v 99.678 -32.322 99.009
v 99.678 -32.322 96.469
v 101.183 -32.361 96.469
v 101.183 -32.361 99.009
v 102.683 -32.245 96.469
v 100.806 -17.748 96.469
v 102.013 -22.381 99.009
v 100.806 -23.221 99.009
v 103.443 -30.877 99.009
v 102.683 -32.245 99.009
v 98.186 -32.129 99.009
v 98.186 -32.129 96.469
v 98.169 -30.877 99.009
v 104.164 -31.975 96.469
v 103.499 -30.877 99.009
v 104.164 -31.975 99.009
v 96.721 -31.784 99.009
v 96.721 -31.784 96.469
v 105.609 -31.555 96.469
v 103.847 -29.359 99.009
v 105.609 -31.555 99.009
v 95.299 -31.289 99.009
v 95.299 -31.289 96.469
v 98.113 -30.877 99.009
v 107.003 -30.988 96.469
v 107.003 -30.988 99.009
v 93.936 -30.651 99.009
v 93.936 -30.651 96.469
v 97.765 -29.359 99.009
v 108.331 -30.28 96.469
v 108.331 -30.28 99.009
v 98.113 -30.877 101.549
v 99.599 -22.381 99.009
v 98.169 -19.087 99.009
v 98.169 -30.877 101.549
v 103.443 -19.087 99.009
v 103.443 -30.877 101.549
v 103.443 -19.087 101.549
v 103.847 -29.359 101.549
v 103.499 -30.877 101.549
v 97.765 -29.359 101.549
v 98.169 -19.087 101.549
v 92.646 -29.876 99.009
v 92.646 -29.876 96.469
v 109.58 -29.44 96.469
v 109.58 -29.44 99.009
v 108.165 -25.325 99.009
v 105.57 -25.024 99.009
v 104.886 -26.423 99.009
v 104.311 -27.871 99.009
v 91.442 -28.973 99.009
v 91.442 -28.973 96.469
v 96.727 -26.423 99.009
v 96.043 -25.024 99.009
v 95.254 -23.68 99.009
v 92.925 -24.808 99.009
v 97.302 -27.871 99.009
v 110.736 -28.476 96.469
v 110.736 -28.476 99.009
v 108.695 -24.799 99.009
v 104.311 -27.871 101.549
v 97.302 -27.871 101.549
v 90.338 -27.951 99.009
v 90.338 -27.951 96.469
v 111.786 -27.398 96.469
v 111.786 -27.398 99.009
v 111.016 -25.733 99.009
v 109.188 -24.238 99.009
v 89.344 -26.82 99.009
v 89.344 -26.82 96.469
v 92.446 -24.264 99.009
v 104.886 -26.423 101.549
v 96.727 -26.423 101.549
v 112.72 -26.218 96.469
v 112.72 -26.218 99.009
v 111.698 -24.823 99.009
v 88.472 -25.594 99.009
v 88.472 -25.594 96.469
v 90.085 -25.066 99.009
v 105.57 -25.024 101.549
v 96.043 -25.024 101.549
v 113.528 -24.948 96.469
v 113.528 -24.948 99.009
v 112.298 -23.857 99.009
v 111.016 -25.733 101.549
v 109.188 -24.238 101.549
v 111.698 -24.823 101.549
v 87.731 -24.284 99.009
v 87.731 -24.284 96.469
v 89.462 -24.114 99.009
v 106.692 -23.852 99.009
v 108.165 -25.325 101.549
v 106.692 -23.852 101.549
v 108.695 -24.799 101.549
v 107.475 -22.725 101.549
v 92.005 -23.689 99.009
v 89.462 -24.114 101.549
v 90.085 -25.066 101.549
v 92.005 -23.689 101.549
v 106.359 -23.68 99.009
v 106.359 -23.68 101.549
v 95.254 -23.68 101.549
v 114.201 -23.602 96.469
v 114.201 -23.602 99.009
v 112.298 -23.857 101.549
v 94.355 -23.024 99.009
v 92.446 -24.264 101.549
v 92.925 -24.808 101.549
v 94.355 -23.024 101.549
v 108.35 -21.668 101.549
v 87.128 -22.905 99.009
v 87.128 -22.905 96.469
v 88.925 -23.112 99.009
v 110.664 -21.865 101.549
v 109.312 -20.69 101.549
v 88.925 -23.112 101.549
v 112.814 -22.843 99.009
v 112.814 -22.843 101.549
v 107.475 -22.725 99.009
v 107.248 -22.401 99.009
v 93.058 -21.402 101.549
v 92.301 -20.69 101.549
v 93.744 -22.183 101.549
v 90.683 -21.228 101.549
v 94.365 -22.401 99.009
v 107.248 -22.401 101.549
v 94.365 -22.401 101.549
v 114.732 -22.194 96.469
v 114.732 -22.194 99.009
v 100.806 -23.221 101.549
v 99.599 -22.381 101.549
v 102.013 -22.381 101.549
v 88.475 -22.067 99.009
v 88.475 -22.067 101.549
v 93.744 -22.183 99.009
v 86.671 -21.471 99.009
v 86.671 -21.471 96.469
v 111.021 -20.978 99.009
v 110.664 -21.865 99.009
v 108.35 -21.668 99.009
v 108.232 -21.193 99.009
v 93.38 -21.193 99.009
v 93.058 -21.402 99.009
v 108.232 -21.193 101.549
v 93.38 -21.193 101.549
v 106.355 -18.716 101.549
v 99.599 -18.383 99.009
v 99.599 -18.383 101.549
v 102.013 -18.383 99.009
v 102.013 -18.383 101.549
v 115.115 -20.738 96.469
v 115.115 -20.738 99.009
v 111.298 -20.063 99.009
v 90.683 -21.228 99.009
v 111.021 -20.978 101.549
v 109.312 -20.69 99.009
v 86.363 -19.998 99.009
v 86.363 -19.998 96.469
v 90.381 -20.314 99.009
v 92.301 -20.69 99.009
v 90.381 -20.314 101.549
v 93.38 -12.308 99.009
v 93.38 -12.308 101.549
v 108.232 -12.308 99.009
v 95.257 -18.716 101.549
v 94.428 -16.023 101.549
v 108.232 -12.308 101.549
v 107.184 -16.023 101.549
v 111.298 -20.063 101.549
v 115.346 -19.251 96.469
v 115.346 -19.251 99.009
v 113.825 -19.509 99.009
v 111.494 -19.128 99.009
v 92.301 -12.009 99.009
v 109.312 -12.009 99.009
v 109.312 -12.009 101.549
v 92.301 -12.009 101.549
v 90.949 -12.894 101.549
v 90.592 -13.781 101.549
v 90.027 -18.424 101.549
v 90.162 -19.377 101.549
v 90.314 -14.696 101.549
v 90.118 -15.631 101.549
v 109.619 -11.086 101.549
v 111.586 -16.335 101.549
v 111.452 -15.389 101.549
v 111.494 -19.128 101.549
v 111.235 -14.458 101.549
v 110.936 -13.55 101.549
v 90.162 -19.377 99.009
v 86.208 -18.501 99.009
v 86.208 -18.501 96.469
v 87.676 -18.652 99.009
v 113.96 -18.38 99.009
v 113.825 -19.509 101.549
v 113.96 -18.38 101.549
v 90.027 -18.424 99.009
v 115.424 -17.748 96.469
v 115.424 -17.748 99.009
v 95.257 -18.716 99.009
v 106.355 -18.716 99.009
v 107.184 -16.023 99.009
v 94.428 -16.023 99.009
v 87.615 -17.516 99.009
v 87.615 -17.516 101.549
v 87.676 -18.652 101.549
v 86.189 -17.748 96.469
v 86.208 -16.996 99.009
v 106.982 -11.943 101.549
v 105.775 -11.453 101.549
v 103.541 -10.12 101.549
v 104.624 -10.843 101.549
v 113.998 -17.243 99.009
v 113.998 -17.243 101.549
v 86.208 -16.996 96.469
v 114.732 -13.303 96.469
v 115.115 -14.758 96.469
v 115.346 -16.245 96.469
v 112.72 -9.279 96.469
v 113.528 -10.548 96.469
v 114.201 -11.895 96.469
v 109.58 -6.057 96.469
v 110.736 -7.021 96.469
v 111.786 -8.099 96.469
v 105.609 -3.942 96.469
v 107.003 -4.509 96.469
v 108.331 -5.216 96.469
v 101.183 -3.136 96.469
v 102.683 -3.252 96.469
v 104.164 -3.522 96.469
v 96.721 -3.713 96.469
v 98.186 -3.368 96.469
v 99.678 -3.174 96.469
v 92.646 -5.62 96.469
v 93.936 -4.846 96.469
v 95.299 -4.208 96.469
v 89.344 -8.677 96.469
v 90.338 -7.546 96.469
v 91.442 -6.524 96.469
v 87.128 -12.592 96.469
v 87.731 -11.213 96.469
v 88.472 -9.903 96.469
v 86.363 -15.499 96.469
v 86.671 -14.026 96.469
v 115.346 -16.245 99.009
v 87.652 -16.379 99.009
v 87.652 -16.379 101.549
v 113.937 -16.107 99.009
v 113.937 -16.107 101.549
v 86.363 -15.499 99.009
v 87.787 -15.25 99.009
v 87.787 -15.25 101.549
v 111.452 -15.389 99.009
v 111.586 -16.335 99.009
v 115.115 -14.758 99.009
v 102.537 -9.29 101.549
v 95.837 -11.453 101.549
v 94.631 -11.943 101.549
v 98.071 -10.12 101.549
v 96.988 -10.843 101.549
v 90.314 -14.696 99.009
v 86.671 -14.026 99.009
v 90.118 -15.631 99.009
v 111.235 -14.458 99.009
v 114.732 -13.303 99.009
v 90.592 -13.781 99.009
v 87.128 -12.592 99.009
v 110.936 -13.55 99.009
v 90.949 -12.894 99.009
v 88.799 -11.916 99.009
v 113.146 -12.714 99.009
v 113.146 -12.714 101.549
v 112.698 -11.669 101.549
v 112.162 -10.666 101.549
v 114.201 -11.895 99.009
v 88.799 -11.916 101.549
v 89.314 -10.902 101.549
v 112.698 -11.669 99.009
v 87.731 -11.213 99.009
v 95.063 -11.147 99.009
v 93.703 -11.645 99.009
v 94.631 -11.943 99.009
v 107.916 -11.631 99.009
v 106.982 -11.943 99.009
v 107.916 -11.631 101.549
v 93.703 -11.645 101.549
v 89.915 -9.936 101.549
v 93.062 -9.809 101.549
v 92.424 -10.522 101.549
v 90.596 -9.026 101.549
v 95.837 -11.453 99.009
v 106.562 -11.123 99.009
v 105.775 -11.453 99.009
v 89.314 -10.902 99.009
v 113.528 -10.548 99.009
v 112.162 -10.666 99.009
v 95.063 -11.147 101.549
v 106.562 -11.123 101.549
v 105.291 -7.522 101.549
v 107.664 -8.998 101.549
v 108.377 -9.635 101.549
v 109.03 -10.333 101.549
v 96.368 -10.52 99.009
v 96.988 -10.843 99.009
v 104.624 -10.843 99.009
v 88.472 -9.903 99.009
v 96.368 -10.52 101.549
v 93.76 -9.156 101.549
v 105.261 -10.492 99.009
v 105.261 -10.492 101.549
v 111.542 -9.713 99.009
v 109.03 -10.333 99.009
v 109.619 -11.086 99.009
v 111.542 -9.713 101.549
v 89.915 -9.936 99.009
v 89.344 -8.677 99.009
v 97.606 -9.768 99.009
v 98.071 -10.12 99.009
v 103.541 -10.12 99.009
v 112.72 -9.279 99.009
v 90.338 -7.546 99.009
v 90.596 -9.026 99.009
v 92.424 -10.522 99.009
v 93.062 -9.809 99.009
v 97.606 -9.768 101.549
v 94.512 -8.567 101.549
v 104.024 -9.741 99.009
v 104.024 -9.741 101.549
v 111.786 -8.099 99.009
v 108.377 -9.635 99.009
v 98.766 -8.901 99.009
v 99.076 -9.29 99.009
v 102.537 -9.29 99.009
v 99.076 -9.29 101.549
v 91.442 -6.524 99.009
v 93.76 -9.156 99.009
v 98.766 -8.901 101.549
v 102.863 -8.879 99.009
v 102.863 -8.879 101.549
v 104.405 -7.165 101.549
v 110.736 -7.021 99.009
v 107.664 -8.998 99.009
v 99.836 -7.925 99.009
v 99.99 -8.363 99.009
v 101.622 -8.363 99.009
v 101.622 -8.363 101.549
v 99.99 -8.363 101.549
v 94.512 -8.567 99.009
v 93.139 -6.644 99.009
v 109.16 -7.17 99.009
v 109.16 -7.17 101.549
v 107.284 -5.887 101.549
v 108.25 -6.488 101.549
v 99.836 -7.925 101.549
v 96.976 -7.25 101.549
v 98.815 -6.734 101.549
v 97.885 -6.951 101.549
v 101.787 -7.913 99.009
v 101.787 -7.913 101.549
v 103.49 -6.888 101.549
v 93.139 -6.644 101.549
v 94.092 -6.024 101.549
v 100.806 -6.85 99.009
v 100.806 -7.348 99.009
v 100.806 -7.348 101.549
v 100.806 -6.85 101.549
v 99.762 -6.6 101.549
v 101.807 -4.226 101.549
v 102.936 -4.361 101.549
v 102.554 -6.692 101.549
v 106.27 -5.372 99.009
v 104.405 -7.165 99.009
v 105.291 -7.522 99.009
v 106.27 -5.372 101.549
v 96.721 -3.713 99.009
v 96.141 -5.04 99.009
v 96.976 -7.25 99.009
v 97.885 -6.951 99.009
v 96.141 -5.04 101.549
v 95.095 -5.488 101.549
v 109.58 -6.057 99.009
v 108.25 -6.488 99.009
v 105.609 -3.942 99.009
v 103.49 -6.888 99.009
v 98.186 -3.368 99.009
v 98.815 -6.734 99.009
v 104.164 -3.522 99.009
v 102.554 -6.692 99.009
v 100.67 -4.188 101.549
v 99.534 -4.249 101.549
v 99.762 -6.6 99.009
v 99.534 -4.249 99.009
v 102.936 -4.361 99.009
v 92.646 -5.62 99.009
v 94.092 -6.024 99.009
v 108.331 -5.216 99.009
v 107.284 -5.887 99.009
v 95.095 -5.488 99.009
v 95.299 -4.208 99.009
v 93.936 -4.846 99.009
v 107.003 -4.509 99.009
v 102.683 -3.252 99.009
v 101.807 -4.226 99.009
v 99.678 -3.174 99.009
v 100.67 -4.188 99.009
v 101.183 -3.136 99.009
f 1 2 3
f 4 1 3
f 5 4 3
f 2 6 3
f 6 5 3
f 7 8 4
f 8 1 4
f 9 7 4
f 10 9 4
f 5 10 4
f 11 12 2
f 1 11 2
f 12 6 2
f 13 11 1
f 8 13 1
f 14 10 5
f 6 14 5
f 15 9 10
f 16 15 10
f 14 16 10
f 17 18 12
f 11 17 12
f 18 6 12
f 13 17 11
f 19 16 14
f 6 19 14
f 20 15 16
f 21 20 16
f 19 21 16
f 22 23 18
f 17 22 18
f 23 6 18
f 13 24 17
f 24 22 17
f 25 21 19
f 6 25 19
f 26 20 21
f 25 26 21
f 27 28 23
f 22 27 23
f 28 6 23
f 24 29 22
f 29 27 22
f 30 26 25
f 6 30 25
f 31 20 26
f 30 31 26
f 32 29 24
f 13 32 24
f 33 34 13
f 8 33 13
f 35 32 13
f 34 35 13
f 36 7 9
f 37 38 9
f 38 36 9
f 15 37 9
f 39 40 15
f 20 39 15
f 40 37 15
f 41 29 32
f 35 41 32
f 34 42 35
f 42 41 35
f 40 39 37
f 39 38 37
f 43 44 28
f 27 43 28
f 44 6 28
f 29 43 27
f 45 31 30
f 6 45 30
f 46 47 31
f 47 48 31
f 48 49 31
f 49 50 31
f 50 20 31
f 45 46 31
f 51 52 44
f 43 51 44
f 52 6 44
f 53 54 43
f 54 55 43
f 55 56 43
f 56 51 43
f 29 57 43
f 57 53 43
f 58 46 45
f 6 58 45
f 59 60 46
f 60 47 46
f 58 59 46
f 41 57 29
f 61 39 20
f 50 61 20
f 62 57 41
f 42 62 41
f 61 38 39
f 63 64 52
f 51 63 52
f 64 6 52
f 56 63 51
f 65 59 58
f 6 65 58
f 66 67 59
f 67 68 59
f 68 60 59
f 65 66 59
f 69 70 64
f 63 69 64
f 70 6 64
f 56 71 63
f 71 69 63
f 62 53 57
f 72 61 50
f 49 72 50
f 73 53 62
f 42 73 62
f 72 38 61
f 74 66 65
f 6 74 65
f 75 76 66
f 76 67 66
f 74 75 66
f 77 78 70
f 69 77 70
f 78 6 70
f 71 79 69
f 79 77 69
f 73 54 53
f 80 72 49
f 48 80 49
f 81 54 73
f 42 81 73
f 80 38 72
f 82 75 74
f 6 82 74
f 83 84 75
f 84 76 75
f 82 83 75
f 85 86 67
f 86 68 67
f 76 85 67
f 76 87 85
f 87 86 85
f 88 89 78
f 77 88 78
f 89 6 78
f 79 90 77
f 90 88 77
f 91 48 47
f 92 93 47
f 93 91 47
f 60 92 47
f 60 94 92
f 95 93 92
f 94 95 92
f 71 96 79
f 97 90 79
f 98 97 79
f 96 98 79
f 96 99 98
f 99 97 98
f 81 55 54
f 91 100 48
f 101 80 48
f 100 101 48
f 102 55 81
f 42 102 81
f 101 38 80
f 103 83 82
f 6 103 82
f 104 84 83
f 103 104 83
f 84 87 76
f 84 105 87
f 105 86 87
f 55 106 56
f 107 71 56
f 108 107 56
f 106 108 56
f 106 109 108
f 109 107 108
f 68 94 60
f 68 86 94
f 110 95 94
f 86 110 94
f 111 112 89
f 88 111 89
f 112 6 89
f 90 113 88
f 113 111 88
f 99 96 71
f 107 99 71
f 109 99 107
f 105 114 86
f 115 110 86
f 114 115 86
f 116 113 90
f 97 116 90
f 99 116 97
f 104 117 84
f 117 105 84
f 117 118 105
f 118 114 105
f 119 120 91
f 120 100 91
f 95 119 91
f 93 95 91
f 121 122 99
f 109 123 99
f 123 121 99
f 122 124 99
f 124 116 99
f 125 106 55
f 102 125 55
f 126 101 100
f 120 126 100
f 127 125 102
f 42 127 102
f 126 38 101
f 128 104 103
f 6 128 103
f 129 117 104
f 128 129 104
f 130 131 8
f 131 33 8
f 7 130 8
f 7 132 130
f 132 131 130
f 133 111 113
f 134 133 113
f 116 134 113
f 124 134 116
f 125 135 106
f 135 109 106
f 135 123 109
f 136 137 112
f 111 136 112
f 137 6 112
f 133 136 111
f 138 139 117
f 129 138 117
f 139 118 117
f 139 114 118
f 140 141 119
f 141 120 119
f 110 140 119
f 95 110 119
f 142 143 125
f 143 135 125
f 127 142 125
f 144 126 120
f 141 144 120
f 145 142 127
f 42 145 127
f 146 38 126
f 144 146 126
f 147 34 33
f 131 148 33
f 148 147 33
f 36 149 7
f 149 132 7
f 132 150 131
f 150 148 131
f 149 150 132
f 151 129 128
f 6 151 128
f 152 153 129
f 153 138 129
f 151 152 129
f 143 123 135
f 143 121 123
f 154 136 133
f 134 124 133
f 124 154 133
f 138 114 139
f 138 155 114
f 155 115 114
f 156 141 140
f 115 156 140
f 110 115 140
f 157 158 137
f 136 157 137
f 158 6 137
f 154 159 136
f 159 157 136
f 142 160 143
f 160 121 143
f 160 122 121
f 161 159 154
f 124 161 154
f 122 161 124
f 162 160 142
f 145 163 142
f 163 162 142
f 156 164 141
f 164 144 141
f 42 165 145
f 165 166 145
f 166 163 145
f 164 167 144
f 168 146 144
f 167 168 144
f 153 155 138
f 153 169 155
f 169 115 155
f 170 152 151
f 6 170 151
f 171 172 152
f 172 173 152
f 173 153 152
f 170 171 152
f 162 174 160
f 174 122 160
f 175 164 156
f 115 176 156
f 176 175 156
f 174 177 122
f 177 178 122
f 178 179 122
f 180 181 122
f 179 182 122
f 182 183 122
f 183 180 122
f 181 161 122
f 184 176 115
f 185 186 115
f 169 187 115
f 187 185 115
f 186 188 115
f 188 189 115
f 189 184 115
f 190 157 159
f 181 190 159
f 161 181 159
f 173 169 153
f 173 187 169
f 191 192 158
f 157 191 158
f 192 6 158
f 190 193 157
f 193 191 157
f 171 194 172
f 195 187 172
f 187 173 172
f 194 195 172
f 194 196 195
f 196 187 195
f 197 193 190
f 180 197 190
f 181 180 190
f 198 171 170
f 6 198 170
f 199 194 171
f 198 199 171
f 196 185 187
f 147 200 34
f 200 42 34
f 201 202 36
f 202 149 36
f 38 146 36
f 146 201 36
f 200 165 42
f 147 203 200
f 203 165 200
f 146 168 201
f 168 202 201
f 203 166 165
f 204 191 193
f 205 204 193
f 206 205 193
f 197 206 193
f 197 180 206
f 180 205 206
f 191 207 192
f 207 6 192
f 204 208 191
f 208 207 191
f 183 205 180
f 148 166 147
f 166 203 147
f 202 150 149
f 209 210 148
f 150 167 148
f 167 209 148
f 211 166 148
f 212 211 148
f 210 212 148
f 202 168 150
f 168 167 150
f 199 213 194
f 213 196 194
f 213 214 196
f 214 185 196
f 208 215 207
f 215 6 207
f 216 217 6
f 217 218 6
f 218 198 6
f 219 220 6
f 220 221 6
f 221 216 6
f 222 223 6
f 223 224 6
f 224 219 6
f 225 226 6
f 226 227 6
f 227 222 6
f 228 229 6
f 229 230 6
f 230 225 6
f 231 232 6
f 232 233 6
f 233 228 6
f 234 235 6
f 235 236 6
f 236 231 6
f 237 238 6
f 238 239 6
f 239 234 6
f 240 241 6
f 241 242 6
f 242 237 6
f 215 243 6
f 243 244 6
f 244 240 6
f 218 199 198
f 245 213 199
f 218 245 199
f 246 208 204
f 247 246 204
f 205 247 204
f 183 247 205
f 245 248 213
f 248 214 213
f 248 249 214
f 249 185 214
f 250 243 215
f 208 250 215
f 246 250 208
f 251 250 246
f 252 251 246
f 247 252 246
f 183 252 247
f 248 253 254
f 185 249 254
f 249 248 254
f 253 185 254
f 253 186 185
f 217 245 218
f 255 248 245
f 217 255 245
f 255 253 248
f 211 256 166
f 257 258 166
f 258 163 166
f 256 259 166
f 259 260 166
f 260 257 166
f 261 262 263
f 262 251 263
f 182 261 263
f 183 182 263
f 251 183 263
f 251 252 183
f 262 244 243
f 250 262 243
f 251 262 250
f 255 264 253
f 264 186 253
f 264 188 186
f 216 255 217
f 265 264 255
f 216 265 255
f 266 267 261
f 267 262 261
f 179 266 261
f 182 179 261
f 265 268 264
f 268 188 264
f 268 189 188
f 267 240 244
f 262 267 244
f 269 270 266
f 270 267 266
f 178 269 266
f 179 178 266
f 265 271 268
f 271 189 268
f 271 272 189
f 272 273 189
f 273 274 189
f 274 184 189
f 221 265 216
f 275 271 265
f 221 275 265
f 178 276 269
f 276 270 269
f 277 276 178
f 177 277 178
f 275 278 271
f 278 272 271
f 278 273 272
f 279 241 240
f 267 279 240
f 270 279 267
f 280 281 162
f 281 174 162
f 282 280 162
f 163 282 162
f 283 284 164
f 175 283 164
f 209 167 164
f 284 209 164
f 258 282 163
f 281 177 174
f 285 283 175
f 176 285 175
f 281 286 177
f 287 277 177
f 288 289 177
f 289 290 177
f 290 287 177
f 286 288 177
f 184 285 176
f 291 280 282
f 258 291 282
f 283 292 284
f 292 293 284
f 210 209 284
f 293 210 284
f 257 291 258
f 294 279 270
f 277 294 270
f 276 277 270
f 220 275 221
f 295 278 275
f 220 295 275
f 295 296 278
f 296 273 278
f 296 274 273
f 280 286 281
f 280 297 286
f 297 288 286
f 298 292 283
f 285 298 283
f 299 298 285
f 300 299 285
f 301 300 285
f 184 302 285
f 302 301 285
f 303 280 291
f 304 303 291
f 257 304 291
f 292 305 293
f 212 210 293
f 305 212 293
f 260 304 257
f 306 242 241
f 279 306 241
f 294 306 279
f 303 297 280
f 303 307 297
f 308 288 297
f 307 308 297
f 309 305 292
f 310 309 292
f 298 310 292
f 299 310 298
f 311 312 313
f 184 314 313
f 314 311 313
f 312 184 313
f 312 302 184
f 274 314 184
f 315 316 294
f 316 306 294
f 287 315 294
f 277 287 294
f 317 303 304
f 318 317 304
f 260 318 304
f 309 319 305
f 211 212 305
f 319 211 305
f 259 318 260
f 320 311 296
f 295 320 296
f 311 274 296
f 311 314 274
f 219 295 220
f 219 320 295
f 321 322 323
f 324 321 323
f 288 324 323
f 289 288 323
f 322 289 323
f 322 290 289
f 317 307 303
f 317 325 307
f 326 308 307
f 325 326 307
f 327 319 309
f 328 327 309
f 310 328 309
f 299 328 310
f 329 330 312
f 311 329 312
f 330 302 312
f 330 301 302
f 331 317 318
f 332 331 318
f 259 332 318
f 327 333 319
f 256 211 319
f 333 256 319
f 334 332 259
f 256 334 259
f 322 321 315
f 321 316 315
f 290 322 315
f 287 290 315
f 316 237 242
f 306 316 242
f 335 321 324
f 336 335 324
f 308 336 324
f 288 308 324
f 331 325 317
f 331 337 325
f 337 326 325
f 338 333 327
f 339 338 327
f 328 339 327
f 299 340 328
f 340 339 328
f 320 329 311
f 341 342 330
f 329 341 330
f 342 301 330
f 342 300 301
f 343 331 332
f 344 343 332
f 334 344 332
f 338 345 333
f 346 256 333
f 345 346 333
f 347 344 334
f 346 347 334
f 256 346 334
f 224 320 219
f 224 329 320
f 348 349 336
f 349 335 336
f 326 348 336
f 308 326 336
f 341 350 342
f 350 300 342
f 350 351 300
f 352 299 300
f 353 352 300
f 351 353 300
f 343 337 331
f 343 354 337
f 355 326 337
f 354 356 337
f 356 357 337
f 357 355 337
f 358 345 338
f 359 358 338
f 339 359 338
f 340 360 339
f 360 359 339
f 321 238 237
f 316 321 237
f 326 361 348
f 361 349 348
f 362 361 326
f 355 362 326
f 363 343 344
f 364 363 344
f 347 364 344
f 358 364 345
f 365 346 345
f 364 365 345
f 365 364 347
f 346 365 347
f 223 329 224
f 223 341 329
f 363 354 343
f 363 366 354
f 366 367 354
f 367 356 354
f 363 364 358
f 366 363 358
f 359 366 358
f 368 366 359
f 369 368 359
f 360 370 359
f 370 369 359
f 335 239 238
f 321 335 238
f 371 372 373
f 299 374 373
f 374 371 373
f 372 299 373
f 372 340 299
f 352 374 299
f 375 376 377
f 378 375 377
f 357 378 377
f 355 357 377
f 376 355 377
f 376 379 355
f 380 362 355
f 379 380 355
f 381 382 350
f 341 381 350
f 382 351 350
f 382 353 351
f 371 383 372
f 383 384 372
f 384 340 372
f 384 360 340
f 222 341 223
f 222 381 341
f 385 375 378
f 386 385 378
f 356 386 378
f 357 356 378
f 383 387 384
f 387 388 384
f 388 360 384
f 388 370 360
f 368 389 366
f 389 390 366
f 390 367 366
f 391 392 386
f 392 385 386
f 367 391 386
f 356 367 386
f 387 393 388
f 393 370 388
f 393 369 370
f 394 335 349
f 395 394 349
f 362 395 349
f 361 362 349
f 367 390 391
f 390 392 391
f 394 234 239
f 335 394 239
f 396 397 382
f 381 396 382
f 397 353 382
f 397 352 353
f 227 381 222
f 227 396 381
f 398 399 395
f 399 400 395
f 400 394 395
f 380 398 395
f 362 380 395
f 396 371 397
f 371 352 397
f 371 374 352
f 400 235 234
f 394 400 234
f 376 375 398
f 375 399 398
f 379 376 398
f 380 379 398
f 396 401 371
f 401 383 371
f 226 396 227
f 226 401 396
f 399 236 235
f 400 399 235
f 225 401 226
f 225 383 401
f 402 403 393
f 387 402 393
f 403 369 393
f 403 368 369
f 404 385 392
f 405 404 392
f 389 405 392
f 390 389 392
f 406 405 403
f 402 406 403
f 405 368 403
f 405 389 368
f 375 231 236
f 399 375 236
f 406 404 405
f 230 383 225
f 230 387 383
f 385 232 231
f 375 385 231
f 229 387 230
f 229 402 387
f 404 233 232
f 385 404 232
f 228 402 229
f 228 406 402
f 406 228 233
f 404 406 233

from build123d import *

# Parameters (mm, degrees)
SKETCH1_R               = 13.8795
SKETCH1_R_2             = 13.8811
SKETCH1_R_3             = 2.54
SKETCH1_W               = 163.5125
SKETCH1_H               = 30.6038
BOSS_EXTRUDE1_DEPTH     = 5.08
SKETCH3_W               = 101.6
SKETCH3_H               = 2.54
BOSS_EXTRUDE4_DEPTH     = 38.1
SKETCH7_W               = 7.620008307
SKETCH7_H               = 5.08
BOSS_EXTRUDE5_DEPTH     = 11.43
FILLET5_RADIUS          = 3.810004153
FILLET5_LENGTH          = 5.08
BOSS_EXTRUDE6_DEPTH     = 2.54
SKETCH15_R              = 1.8415
BOSS_EXTRUDE7_DEPTH     = 2.54
CUT_EXTRUDE3_START      = -5.08
SKETCH19_R              = 1.8415
CUT_EXTRUDE3_DEPTH      = 5.08
SKETCH12_W              = 155.030782426
SKETCH12_H              = 26.837151361
CUT_EXTRUDE4_DEPTH      = 229.935471644
CUT_EXTRUDE5_DEPTH      = 2.54
FILLET6_R               = 2.54
BOSS_EXTRUDE8_DEPTH     = 5.08
CUT_EXTRUDE6_DEPTH      = 186.437362631
CUT_EXTRUDE6_DEPTH_BACK = 186.437362631
SKETCH23_R              = 1.8415
SKETCH25_W              = 130.43271363
SKETCH25_H              = 56.644769142
SKETCH25_R              = 14.617659747
CUT_EXTRUDE8_DEPTH      = 158.1898379


with BuildPart() as part:
    # Sketch1 → Boss-Extrude1 (new body)
    with BuildSketch(Plane(origin=(0, 0, 0), x_dir=(1, 0, 0), z_dir=(0, 1, 0))):
        with BuildLine():
            Line((0, 0), (201.6125, 0))
            Line((201.6125, 0), (201.6125, -45.847))
            Line((201.6125, -45.847), (166.66845, -45.847))
            Line((166.66845, -45.847), (166.66845, -83.7692))
            ThreePointArc((166.66845, -83.7692), (162.204757345, -94.545507345), (151.42845, -99.0092))
            Line((151.42845, -99.0092), (50.18405, -99.0092))
            ThreePointArc((50.18405, -99.0092), (39.407742655, -94.545507345), (34.94405, -83.7692))
            Line((34.94405, -83.7692), (34.94405, -45.847))
            Line((34.94405, -45.847), (0, -45.847))
            Line((0, -45.847), (0, 0))
        make_face()
        with Locations(Location((60.34405, -72.4265, 0), (0, 0, 270))):
            Circle(SKETCH1_R, mode=Mode.SUBTRACT)
        with Locations(Location((141.26845, -72.4281, 0), (0, 0, 270))):
            Circle(SKETCH1_R_2, mode=Mode.SUBTRACT)
        with Locations(Location((13.096875, -9.7139, 0), (0, 0, 270))):
            Circle(SKETCH1_R_3, mode=Mode.SUBTRACT)
        with Locations(Location((188.515625, -9.7139, 0), (0, 0, 270))):
            Circle(SKETCH1_R_3, mode=Mode.SUBTRACT)
        with Locations(Location((13.096875, -36.1299, 0), (0, 0, 270))):
            Circle(SKETCH1_R_3, mode=Mode.SUBTRACT)
        with Locations(Location((188.515625, -36.1299, 0), (0, 0, 270))):
            Circle(SKETCH1_R_3, mode=Mode.SUBTRACT)
        with Locations(Location((100.80625, -72.4281, 0), (0, 0, 270))):
            Circle(SKETCH1_R_2, mode=Mode.SUBTRACT)
        with Locations((100.80625, -22.9219)):
            Rectangle(SKETCH1_W, SKETCH1_H, mode=Mode.SUBTRACT)
    extrude(amount=BOSS_EXTRUDE1_DEPTH)

    # Sketch3 → Boss-Extrude4 (add)
    with BuildSketch(Plane(origin=(0, 0, 198.0184), x_dir=(-1, 0, 0), z_dir=(0, 1, 0))):
        with Locations((-100.80625, -100.2792)):
            Rectangle(SKETCH3_W, SKETCH3_H)
    extrude(amount=-BOSS_EXTRUDE4_DEPTH)

    # Sketch7 → Boss-Extrude5 (add)
    with BuildSketch(Plane(origin=(0, 0, 99.0092), x_dir=(1, 0, 0), z_dir=(0, 0, -1))):
        with Locations((100.806245847, 35.56)):
            Rectangle(SKETCH7_W, SKETCH7_H)
    extrude(amount=BOSS_EXTRUDE5_DEPTH)

    # Fillet5: full round fillet: the end face becomes a half cylinder, R = half its width
    fillet5_face = Plane((100.806245847, -35.56, 87.5792), x_dir=(0, 1, 0), z_dir=(0, 0, -1))  # on the end face: x along it, z out of the body
    fillet5_slab = fillet5_face.offset(-FILLET5_RADIUS / 2) * Box(FILLET5_LENGTH, 2 * FILLET5_RADIUS, FILLET5_RADIUS, mode=Mode.PRIVATE)  # the body's end, R deep
    fillet5_round = Plane((100.806245847, -35.56, 91.389204153), x_dir=(0, 0, -1), z_dir=(0, 1, 0)) * Cylinder(FILLET5_RADIUS, FILLET5_LENGTH, mode=Mode.PRIVATE)  # its axis R under the face
    add(fillet5_slab - fillet5_round, mode=Mode.SUBTRACT)

    # Sketch14 → Boss-Extrude6 (add)
    with BuildSketch(Plane(origin=(0, 0, 99.0092), x_dir=(-1, 0, 0), z_dir=(0, 0, -1))):
        with BuildLine():
            Line((-106.692297799, -23.852483199), (-108.165059803, -25.325245202))
            ThreePointArc((-108.165059803, -25.325245202), (-108.695299399, -24.799048835), (-109.188003193, -24.237551179))
            Line((-109.188003193, -24.237551179), (-111.016232612, -25.73340078))
            ThreePointArc((-111.016232612, -25.73340078), (-112.008576056, -24.346487635), (-112.813712744, -22.843148519))
            Line((-112.813712744, -22.843148519), (-110.663621263, -21.864835961))
            ThreePointArc((-110.663621263, -21.864835961), (-111.169570673, -20.523896068), (-111.494018753, -19.127888173))
            Line((-111.494018753, -19.127888173), (-113.825236675, -19.509217219))
            ThreePointArc((-113.825236675, -19.509217219), (-113.991174734, -17.81194348), (-113.936774001, -16.107445271))
            Line((-113.936774001, -16.107445271), (-111.585583879, -16.335247483))
            ThreePointArc((-111.585583879, -16.335247483), (-111.353278975, -14.920984767), (-110.936255307, -13.549782426))
            Line((-110.936255307, -13.549782426), (-113.145813772, -12.714414106))
            ThreePointArc((-113.145813772, -12.714414106), (-112.440883477, -11.161562901), (-111.541521956, -9.712624518))
            Line((-111.541521956, -9.712624518), (-109.619232687, -11.085502082))
            ThreePointArc((-109.619232687, -11.085502082), (-108.71091938, -9.976867094), (-107.664165119, -8.997882867))
            Line((-107.664165119, -8.997882867), (-109.160014721, -7.169653447))
            ThreePointArc((-109.160014721, -7.169653447), (-107.773101576, -6.177310003), (-106.26976246, -5.372173315))
            Line((-106.26976246, -5.372173315), (-105.291449901, -7.522264796))
            ThreePointArc((-105.291449901, -7.522264796), (-103.950510009, -7.016315387), (-102.554502114, -6.691867307))
            Line((-102.554502114, -6.691867307), (-102.93583116, -4.360649385))
            ThreePointArc((-102.93583116, -4.360649385), (-101.238557421, -4.194711325), (-99.534059212, -4.249112058))
            Line((-99.534059212, -4.249112058), (-99.761861424, -6.600302181))
            ThreePointArc((-99.761861424, -6.600302181), (-98.347598708, -6.832607085), (-96.976396367, -7.249630753))
            Line((-96.976396367, -7.249630753), (-96.141028047, -5.040072288))
            ThreePointArc((-96.141028047, -5.040072288), (-94.588176842, -5.745002582), (-93.139238459, -6.644364103))
            Line((-93.139238459, -6.644364103), (-94.512116023, -8.566653372))
            ThreePointArc((-94.512116023, -8.566653372), (-93.403481035, -9.474966679), (-92.424496807, -10.52172094))
            Line((-92.424496807, -10.52172094), (-90.596267388, -9.025871338))
            ThreePointArc((-90.596267388, -9.025871338), (-89.603923944, -10.412784483), (-88.798787256, -11.9161236))
            Line((-88.798787256, -11.9161236), (-90.948878737, -12.894436158))
            ThreePointArc((-90.948878737, -12.894436158), (-90.442929327, -14.23537605), (-90.118481247, -15.631383945))
            Line((-90.118481247, -15.631383945), (-87.787263325, -15.250054899))
            ThreePointArc((-87.787263325, -15.250054899), (-87.621325266, -16.947328638), (-87.675725999, -18.651826847))
            Line((-87.675725999, -18.651826847), (-90.026916121, -18.424024635))
            ThreePointArc((-90.026916121, -18.424024635), (-90.261418035, -19.847693028), (-90.683092324, -21.227553033))
            Line((-90.683092324, -21.227553033), (-88.475027465, -22.066861331))
            ThreePointArc((-88.475027465, -22.066861331), (-89.182726542, -23.618452644), (-90.084671181, -25.065784483))
            Line((-90.084671181, -25.065784483), (-92.004508517, -23.689480212))
            ThreePointArc((-92.004508517, -23.689480212), (-92.446198552, -24.26398978), (-92.925321338, -24.807674144))
            Line((-92.925321338, -24.807674144), (-94.354515121, -23.023521367))
            ThreePointArc((-94.354515121, -23.023521367), (-93.409906556, -21.784451479), (-92.300984022, -20.689978846))
            Line((-92.300984022, -20.689978846), (-92.300984022, -12.009378674))
            ThreePointArc((-92.300984022, -12.009378674), (-96.99616691, -10.159066764), (-100.80625, -6.84973702))
            ThreePointArc((-100.80625, -6.84973702), (-104.633502919, -10.130984342), (-109.311759392, -12.009378674))
            Line((-109.311759392, -12.009378674), (-109.311759392, -20.689978846))
            ThreePointArc((-109.311759392, -20.689978846), (-107.900903874, -22.187470719), (-106.692297799, -23.852483199))
        make_face()
        with BuildLine():
            Line((-100.80625, -23.220768427), (-99.599369927, -22.380573493))
            Line((-99.599369927, -22.380573493), (-99.599369927, -18.3831432))
            Line((-99.599369927, -18.3831432), (-94.428037288, -16.022579614))
            Line((-94.428037288, -16.022579614), (-95.257330485, -18.716255471))
            Line((-95.257330485, -18.716255471), (-98.169049816, -19.087499686))
            Line((-98.169049816, -19.087499686), (-98.169049816, -30.877249674))
            Line((-98.169049816, -30.877249674), (-98.113370072, -30.877249674))
            ThreePointArc((-98.113370072, -30.877249674), (-96.397994117, -25.717029016), (-93.380333496, -21.193300875))
            Line((-93.380333496, -21.193300875), (-93.380333496, -12.307821257))
            ThreePointArc((-93.380333496, -12.307821257), (-97.539082277, -10.495406691), (-100.80625, -7.348081946))
            ThreePointArc((-100.80625, -7.348081946), (-104.073417723, -10.495406691), (-108.232166504, -12.307821257))
            Line((-108.232166504, -12.307821257), (-108.232166504, -21.193300875))
            ThreePointArc((-108.232166504, -21.193300875), (-105.214505883, -25.717029016), (-103.499129928, -30.877249674))
            Line((-103.499129928, -30.877249674), (-103.443450184, -30.877249674))
            Line((-103.443450184, -30.877249674), (-103.443450184, -19.087499686))
            Line((-103.443450184, -19.087499686), (-106.355169515, -18.716255471))
            Line((-106.355169515, -18.716255471), (-107.184462712, -16.022579614))
            Line((-107.184462712, -16.022579614), (-102.013130073, -18.3831432))
            Line((-102.013130073, -18.3831432), (-102.013130073, -22.380573493))
            Line((-102.013130073, -22.380573493), (-100.80625, -23.220768427))
        make_face()
    extrude(amount=-BOSS_EXTRUDE6_DEPTH)

    # Sketch15 → Boss-Extrude7 (add)
    # profile 1 of 2: a face of its own
    with BuildSketch(Plane.XZ):
        with BuildLine():
            Line((114.68735, 88.8492), (114.68735, 96.4692))
            Line((114.68735, 96.4692), (127.38735, 96.4692))
            Line((127.38735, 96.4692), (127.38735, 88.8492))
            ThreePointArc((127.38735, 88.8492), (121.03735, 82.4992), (114.68735, 88.8492))
        make_face()
        with Locations(Location((121.03735, 88.8492, 0), (0, 0, 270))):
            Circle(SKETCH15_R, mode=Mode.SUBTRACT)
    # profile 2 of 2: a face of its own
    with BuildSketch(Plane.XZ):
        with BuildLine():
            Line((74.22515, 96.4692), (86.92515, 96.4692))
            Line((86.92515, 96.4692), (86.92515, 88.8492))
            ThreePointArc((86.92515, 88.8492), (80.57515, 82.4992), (74.22515, 88.8492))
            Line((74.22515, 88.8492), (74.22515, 96.4692))
        make_face()
        with Locations(Location((80.57515, 88.8492, 0), (0, 0, 90))):
            Circle(SKETCH15_R, mode=Mode.SUBTRACT)
    extrude(amount=BOSS_EXTRUDE7_DEPTH)

    # Sketch19 → Cut-Extrude3 (cut)
    with BuildSketch(Plane.XZ.offset(CUT_EXTRUDE3_START)):
        with Locations(Location((80.57515, 88.8492, 0), (0, 0, 90))):
            Circle(SKETCH19_R)
        with Locations(Location((121.03735, 88.8492, 0), (0, 0, 270))):
            Circle(SKETCH19_R)
    extrude(amount=CUT_EXTRUDE3_DEPTH, mode=Mode.SUBTRACT)

    # Sketch12 → Cut-Extrude4 (cut, through all)
    with BuildSketch(Plane(origin=(201.6125, 0, 0), x_dir=(0, 0, -1), z_dir=(1, 0, 0))):
        with Locations((-77.515391213, 13.418575681)):
            Rectangle(SKETCH12_W, SKETCH12_H)
    extrude(amount=-CUT_EXTRUDE4_DEPTH, mode=Mode.SUBTRACT)

    # Sketch21 → Cut-Extrude5 (cut)
    with BuildSketch(Plane.XY.offset(99.0092)):
        Polygon((55.08625, -33.02), (55.08625, -25.835795103), (62.270454897, -33.02), align=None)
        Polygon((55.08625, -5.08), (55.883069587, -5.08), (83.823069587, -33.02), (76.638864691, -33.02), (55.08625, -11.467385309), align=None)
        with BuildLine():
            Line((91.916241693, -33.02), (91.916241693, -30.737077601))
            ThreePointArc((91.916241693, -30.737077601), (89.237970167, -28.421401444), (87.1450505, -25.565673567))
            Line((87.1450505, -25.565673567), (66.659376933, -5.08))
            Line((66.659376933, -5.08), (59.475172036, -5.08))
            Line((59.475172036, -5.08), (87.415172036, -33.02))
            Line((87.415172036, -33.02), (91.916241693, -33.02))
        make_face()
        Polygon((146.52625, -5.08), (145.729430413, -5.08), (117.789430413, -33.02), (124.973635309, -33.02), (146.52625, -11.467385309), align=None)
        with BuildLine():
            Line((109.69625, -33.02), (114.197327964, -33.02))
            Line((114.197327964, -33.02), (142.137327964, -5.08))
            Line((142.137327964, -5.08), (134.953123067, -5.08))
            Line((134.953123067, -5.08), (114.4674495, -25.565673567))
            ThreePointArc((114.4674495, -25.565673567), (112.374526421, -28.421405143), (109.69625, -30.737083287))
            Line((109.69625, -30.737083287), (109.69625, -33.02))
        make_face()
        Polygon((146.52625, -33.02), (146.52625, -25.835795103), (139.342045103, -33.02), align=None)
        Polygon((135.749942655, -33.02), (146.52625, -22.243692655), (146.52625, -15.059487758), (128.565737758, -33.02), align=None)
        with BuildLine():
            Line((124.176815722, -5.08), (115.916182775, -13.340632947))
            ThreePointArc((115.916182775, -13.340632947), (116.509577502, -16.678871551), (116.374281129, -20.06673949))
            Line((116.374281129, -20.06673949), (131.361020619, -5.08))
            Line((131.361020619, -5.08), (124.176815722, -5.08))
        make_face()
        with BuildLine():
            Line((120.584713274, -5.08), (114.907893678, -10.756819596))
            ThreePointArc((114.907893678, -10.756819596), (113.575134343, -8.545454533), (111.89877754, -6.581730837))
            Line((111.89877754, -6.581730837), (113.400508377, -5.08))
            Line((113.400508377, -5.08), (120.584713274, -5.08))
        make_face()
        Polygon((65.862557345, -33.02), (55.08625, -22.243692655), (55.08625, -15.059487758), (73.046762242, -33.02), align=None)
        with BuildLine():
            Line((70.251479381, -5.08), (85.238218871, -20.06673949))
            ThreePointArc((85.238218871, -20.06673949), (85.102922498, -16.678871551), (85.696317225, -13.340632947))
            Line((85.696317225, -13.340632947), (77.435684278, -5.08))
            Line((77.435684278, -5.08), (70.251479381, -5.08))
        make_face()
        with BuildLine():
            Line((81.027786726, -5.08), (86.704606322, -10.756819596))
            ThreePointArc((86.704606322, -10.756819596), (88.037365657, -8.545454533), (89.71372246, -6.581730837))
            Line((89.71372246, -6.581730837), (88.211991623, -5.08))
            Line((88.211991623, -5.08), (81.027786726, -5.08))
        make_face()
    extrude(amount=-CUT_EXTRUDE5_DEPTH, mode=Mode.SUBTRACT)

    # Fillet6
    fillet6_edges = [part.edges().sort_by_distance(p)[0] for p in [
        (151.60625, -19.05, 99.0092),
        (50.00625, -19.05, 99.0092),
    ]]
    fillet(fillet6_edges, radius=FILLET6_R - 0.0001)  # a hair under: the kernel refuses the full size

    # Sketch22 → Boss-Extrude8 (add)
    with BuildSketch(Plane(origin=(0, -33.02, 0), x_dir=(1, 0, 0), z_dir=(0, 1, 0))):
        with BuildLine():
            Line((94.45625, -96.4692), (94.45625, -88.8492))
            ThreePointArc((94.45625, -88.8492), (100.80625, -82.4992), (107.15625, -88.8492))
            Line((107.15625, -88.8492), (107.15625, -96.4692))
            Line((107.15625, -96.4692), (94.45625, -96.4692))
        make_face()
    extrude(amount=-BOSS_EXTRUDE8_DEPTH)

    # Sketch23 → Cut-Extrude6 (cut, two sides: drawn at the far end of the back side and taken through both)
    with BuildSketch(Plane(origin=(0, -33.02, 0), x_dir=(1, 0, 0), z_dir=(0, 1, 0)).offset(-CUT_EXTRUDE6_DEPTH_BACK)):
        with Locations(Location((100.80625, -88.8492, 0), (0, 0, 270))):
            Circle(SKETCH23_R)
    extrude(amount=CUT_EXTRUDE6_DEPTH + CUT_EXTRUDE6_DEPTH_BACK, mode=Mode.SUBTRACT)

    # Sketch25 → Cut-Extrude8 (cut, through all)
    with BuildSketch(Plane.XY.offset(99.0092)):
        with Locations((92.75102303, -12.285674788)):
            Rectangle(SKETCH25_W, SKETCH25_H)
        with Locations((100.80625, -17.748386051)):
            Circle(SKETCH25_R, mode=Mode.SUBTRACT)
    extrude(amount=-CUT_EXTRUDE8_DEPTH, mode=Mode.SUBTRACT)


solid = part.part
